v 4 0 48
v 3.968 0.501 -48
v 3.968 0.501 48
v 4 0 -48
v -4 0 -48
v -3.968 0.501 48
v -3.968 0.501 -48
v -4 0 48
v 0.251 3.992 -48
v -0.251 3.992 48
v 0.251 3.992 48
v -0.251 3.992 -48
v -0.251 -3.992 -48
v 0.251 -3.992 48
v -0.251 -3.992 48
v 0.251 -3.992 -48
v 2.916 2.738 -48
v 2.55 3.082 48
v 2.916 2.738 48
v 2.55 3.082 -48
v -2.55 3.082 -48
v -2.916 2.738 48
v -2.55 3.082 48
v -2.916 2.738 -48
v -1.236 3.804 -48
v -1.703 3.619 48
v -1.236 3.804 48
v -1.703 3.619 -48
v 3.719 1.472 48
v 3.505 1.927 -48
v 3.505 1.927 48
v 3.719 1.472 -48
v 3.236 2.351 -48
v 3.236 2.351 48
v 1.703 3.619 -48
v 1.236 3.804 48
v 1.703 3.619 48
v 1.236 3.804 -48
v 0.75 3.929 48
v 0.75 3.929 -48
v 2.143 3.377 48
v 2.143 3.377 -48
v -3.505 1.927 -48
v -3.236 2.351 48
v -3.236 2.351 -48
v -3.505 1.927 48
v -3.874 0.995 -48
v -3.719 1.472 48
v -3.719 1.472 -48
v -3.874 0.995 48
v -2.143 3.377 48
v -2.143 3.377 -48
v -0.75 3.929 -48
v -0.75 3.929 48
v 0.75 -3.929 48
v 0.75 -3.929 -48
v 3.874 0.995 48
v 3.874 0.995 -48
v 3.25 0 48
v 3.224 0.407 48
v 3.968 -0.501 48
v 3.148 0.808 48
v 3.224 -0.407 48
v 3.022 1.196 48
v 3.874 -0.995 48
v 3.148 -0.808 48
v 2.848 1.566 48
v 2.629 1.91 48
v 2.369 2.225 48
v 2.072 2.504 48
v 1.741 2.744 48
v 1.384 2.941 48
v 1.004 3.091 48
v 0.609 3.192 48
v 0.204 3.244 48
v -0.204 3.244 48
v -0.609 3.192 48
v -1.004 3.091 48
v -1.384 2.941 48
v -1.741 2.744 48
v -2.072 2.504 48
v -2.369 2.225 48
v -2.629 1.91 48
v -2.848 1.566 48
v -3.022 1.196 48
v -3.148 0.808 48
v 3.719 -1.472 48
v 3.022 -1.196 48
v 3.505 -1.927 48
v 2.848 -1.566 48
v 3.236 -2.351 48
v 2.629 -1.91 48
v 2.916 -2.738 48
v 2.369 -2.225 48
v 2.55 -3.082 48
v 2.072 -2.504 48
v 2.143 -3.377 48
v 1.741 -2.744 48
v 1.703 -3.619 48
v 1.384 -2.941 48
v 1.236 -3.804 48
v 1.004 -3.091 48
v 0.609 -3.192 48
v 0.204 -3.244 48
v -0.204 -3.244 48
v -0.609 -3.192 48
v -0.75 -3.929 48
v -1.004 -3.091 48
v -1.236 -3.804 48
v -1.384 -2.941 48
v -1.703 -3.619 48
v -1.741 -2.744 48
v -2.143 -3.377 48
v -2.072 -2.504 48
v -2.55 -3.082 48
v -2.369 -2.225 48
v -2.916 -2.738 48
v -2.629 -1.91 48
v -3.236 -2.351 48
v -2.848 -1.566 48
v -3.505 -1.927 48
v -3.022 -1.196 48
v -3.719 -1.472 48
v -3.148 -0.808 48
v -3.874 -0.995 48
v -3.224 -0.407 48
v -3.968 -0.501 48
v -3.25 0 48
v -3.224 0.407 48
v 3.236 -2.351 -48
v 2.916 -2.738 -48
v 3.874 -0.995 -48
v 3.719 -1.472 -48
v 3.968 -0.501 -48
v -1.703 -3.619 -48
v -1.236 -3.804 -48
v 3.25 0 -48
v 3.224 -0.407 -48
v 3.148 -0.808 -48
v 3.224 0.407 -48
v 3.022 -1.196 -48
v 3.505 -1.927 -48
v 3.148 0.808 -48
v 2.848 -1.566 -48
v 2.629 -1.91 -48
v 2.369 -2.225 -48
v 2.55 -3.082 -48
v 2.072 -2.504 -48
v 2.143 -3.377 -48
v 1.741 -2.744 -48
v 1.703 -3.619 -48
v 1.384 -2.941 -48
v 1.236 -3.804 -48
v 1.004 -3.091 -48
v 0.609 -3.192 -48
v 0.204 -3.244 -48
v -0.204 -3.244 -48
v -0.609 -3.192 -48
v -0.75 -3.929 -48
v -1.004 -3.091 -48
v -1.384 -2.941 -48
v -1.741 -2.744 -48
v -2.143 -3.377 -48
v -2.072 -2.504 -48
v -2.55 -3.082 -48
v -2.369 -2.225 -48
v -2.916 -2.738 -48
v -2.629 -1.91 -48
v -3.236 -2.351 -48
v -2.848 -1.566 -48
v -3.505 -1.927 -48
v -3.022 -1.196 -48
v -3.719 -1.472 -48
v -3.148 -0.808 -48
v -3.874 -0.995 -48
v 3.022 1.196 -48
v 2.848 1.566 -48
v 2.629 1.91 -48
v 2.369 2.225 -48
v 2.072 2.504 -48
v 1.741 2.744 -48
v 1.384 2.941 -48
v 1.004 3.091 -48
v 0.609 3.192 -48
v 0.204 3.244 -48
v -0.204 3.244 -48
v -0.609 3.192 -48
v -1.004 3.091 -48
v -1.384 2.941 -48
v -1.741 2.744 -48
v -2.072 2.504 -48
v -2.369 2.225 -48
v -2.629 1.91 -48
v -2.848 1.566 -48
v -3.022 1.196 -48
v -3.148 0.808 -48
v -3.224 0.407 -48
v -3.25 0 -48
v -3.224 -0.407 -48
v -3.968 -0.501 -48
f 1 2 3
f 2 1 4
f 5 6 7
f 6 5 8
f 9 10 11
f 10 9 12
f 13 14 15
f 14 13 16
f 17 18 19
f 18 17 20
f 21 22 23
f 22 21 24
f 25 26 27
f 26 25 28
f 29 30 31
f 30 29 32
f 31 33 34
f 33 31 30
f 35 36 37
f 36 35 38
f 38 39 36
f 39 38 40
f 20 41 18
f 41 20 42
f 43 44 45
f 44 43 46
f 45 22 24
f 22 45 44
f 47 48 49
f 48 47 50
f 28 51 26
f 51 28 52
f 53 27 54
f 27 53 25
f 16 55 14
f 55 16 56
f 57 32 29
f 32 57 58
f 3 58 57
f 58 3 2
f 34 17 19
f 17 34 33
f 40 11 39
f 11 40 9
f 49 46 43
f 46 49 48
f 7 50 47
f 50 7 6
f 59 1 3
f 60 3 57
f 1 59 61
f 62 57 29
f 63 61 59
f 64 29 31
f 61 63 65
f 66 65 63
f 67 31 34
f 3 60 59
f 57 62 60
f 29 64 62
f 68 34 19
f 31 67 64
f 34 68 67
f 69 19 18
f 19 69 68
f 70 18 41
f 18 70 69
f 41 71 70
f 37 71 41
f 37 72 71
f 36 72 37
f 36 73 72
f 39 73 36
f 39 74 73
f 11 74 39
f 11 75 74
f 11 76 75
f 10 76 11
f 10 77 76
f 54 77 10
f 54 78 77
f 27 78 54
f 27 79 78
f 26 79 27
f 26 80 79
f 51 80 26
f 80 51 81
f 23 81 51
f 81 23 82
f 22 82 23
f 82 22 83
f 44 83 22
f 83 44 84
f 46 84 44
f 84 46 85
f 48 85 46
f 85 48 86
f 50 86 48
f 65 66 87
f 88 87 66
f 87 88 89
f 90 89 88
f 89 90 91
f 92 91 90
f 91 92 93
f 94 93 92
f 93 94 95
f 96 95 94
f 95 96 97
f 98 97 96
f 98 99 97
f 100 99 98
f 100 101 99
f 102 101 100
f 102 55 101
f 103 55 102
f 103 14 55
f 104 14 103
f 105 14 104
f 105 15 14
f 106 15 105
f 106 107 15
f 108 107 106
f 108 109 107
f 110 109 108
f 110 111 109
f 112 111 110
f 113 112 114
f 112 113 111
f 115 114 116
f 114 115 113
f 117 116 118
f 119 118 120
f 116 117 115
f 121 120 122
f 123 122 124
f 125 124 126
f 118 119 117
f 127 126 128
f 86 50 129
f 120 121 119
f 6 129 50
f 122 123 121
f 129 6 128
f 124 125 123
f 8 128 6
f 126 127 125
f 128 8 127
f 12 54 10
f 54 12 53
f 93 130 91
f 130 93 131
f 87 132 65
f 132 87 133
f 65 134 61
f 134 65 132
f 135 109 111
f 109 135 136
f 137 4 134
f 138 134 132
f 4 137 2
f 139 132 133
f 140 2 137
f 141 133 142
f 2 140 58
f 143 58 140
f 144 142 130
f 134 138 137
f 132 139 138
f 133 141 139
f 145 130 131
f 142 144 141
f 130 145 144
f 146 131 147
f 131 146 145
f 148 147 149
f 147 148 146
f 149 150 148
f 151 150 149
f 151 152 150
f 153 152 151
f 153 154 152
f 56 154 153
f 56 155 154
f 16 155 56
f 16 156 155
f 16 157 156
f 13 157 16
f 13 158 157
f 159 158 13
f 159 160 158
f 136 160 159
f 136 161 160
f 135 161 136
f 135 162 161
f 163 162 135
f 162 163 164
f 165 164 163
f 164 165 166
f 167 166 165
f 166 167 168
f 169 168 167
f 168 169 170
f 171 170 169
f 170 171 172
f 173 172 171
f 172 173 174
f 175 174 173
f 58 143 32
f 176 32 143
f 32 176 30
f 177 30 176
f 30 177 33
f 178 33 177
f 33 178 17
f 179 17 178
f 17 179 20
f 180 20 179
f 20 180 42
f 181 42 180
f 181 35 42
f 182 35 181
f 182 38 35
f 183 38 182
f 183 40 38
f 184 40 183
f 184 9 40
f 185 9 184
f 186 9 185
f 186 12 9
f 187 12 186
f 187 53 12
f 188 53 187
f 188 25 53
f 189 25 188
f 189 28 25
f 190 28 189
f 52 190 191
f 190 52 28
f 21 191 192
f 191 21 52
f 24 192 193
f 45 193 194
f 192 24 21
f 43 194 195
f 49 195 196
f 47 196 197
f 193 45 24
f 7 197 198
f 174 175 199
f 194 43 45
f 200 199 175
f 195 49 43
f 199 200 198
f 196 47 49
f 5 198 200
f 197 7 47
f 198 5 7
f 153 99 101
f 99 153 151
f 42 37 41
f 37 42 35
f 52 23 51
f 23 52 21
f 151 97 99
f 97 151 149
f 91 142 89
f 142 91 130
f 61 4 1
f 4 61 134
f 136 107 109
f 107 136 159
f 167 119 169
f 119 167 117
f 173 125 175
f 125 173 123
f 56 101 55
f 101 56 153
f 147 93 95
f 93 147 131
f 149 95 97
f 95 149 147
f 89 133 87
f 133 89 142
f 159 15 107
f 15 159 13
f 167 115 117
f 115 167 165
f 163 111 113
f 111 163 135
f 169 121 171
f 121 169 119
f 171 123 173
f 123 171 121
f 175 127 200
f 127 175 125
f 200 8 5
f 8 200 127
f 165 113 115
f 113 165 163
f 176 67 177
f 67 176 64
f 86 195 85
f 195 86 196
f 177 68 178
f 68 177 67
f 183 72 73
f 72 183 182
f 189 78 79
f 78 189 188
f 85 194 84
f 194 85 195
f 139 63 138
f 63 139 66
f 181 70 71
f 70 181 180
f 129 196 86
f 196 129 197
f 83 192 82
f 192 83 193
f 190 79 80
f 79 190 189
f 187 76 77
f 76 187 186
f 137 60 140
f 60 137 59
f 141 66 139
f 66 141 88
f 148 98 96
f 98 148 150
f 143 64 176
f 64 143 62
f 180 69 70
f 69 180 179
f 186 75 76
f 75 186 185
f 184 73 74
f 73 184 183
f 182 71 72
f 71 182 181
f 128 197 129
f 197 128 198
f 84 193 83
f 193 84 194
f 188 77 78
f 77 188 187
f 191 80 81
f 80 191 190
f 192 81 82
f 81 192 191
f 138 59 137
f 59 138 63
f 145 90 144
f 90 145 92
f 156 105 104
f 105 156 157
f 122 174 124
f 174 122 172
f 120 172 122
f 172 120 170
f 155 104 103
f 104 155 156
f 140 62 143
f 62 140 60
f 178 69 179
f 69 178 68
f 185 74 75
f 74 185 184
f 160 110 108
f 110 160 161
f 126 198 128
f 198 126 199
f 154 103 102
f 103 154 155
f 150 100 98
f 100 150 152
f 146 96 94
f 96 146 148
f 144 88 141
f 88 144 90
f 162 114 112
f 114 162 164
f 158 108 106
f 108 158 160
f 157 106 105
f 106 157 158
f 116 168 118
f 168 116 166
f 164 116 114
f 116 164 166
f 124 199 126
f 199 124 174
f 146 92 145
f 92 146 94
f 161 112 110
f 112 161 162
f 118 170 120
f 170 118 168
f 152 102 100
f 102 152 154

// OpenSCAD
$fn = 50;


difference() {
	union() {
		translate(v = [0, 0, -48.0000000000]) {
			cylinder(h = 96, r = 4.0000000000);
		}
	}
	union() {
		translate(v = [0, 0, -100.0000000000]) {
			cylinder(h = 200, r = 3.2500000000);
		}
	}
}
